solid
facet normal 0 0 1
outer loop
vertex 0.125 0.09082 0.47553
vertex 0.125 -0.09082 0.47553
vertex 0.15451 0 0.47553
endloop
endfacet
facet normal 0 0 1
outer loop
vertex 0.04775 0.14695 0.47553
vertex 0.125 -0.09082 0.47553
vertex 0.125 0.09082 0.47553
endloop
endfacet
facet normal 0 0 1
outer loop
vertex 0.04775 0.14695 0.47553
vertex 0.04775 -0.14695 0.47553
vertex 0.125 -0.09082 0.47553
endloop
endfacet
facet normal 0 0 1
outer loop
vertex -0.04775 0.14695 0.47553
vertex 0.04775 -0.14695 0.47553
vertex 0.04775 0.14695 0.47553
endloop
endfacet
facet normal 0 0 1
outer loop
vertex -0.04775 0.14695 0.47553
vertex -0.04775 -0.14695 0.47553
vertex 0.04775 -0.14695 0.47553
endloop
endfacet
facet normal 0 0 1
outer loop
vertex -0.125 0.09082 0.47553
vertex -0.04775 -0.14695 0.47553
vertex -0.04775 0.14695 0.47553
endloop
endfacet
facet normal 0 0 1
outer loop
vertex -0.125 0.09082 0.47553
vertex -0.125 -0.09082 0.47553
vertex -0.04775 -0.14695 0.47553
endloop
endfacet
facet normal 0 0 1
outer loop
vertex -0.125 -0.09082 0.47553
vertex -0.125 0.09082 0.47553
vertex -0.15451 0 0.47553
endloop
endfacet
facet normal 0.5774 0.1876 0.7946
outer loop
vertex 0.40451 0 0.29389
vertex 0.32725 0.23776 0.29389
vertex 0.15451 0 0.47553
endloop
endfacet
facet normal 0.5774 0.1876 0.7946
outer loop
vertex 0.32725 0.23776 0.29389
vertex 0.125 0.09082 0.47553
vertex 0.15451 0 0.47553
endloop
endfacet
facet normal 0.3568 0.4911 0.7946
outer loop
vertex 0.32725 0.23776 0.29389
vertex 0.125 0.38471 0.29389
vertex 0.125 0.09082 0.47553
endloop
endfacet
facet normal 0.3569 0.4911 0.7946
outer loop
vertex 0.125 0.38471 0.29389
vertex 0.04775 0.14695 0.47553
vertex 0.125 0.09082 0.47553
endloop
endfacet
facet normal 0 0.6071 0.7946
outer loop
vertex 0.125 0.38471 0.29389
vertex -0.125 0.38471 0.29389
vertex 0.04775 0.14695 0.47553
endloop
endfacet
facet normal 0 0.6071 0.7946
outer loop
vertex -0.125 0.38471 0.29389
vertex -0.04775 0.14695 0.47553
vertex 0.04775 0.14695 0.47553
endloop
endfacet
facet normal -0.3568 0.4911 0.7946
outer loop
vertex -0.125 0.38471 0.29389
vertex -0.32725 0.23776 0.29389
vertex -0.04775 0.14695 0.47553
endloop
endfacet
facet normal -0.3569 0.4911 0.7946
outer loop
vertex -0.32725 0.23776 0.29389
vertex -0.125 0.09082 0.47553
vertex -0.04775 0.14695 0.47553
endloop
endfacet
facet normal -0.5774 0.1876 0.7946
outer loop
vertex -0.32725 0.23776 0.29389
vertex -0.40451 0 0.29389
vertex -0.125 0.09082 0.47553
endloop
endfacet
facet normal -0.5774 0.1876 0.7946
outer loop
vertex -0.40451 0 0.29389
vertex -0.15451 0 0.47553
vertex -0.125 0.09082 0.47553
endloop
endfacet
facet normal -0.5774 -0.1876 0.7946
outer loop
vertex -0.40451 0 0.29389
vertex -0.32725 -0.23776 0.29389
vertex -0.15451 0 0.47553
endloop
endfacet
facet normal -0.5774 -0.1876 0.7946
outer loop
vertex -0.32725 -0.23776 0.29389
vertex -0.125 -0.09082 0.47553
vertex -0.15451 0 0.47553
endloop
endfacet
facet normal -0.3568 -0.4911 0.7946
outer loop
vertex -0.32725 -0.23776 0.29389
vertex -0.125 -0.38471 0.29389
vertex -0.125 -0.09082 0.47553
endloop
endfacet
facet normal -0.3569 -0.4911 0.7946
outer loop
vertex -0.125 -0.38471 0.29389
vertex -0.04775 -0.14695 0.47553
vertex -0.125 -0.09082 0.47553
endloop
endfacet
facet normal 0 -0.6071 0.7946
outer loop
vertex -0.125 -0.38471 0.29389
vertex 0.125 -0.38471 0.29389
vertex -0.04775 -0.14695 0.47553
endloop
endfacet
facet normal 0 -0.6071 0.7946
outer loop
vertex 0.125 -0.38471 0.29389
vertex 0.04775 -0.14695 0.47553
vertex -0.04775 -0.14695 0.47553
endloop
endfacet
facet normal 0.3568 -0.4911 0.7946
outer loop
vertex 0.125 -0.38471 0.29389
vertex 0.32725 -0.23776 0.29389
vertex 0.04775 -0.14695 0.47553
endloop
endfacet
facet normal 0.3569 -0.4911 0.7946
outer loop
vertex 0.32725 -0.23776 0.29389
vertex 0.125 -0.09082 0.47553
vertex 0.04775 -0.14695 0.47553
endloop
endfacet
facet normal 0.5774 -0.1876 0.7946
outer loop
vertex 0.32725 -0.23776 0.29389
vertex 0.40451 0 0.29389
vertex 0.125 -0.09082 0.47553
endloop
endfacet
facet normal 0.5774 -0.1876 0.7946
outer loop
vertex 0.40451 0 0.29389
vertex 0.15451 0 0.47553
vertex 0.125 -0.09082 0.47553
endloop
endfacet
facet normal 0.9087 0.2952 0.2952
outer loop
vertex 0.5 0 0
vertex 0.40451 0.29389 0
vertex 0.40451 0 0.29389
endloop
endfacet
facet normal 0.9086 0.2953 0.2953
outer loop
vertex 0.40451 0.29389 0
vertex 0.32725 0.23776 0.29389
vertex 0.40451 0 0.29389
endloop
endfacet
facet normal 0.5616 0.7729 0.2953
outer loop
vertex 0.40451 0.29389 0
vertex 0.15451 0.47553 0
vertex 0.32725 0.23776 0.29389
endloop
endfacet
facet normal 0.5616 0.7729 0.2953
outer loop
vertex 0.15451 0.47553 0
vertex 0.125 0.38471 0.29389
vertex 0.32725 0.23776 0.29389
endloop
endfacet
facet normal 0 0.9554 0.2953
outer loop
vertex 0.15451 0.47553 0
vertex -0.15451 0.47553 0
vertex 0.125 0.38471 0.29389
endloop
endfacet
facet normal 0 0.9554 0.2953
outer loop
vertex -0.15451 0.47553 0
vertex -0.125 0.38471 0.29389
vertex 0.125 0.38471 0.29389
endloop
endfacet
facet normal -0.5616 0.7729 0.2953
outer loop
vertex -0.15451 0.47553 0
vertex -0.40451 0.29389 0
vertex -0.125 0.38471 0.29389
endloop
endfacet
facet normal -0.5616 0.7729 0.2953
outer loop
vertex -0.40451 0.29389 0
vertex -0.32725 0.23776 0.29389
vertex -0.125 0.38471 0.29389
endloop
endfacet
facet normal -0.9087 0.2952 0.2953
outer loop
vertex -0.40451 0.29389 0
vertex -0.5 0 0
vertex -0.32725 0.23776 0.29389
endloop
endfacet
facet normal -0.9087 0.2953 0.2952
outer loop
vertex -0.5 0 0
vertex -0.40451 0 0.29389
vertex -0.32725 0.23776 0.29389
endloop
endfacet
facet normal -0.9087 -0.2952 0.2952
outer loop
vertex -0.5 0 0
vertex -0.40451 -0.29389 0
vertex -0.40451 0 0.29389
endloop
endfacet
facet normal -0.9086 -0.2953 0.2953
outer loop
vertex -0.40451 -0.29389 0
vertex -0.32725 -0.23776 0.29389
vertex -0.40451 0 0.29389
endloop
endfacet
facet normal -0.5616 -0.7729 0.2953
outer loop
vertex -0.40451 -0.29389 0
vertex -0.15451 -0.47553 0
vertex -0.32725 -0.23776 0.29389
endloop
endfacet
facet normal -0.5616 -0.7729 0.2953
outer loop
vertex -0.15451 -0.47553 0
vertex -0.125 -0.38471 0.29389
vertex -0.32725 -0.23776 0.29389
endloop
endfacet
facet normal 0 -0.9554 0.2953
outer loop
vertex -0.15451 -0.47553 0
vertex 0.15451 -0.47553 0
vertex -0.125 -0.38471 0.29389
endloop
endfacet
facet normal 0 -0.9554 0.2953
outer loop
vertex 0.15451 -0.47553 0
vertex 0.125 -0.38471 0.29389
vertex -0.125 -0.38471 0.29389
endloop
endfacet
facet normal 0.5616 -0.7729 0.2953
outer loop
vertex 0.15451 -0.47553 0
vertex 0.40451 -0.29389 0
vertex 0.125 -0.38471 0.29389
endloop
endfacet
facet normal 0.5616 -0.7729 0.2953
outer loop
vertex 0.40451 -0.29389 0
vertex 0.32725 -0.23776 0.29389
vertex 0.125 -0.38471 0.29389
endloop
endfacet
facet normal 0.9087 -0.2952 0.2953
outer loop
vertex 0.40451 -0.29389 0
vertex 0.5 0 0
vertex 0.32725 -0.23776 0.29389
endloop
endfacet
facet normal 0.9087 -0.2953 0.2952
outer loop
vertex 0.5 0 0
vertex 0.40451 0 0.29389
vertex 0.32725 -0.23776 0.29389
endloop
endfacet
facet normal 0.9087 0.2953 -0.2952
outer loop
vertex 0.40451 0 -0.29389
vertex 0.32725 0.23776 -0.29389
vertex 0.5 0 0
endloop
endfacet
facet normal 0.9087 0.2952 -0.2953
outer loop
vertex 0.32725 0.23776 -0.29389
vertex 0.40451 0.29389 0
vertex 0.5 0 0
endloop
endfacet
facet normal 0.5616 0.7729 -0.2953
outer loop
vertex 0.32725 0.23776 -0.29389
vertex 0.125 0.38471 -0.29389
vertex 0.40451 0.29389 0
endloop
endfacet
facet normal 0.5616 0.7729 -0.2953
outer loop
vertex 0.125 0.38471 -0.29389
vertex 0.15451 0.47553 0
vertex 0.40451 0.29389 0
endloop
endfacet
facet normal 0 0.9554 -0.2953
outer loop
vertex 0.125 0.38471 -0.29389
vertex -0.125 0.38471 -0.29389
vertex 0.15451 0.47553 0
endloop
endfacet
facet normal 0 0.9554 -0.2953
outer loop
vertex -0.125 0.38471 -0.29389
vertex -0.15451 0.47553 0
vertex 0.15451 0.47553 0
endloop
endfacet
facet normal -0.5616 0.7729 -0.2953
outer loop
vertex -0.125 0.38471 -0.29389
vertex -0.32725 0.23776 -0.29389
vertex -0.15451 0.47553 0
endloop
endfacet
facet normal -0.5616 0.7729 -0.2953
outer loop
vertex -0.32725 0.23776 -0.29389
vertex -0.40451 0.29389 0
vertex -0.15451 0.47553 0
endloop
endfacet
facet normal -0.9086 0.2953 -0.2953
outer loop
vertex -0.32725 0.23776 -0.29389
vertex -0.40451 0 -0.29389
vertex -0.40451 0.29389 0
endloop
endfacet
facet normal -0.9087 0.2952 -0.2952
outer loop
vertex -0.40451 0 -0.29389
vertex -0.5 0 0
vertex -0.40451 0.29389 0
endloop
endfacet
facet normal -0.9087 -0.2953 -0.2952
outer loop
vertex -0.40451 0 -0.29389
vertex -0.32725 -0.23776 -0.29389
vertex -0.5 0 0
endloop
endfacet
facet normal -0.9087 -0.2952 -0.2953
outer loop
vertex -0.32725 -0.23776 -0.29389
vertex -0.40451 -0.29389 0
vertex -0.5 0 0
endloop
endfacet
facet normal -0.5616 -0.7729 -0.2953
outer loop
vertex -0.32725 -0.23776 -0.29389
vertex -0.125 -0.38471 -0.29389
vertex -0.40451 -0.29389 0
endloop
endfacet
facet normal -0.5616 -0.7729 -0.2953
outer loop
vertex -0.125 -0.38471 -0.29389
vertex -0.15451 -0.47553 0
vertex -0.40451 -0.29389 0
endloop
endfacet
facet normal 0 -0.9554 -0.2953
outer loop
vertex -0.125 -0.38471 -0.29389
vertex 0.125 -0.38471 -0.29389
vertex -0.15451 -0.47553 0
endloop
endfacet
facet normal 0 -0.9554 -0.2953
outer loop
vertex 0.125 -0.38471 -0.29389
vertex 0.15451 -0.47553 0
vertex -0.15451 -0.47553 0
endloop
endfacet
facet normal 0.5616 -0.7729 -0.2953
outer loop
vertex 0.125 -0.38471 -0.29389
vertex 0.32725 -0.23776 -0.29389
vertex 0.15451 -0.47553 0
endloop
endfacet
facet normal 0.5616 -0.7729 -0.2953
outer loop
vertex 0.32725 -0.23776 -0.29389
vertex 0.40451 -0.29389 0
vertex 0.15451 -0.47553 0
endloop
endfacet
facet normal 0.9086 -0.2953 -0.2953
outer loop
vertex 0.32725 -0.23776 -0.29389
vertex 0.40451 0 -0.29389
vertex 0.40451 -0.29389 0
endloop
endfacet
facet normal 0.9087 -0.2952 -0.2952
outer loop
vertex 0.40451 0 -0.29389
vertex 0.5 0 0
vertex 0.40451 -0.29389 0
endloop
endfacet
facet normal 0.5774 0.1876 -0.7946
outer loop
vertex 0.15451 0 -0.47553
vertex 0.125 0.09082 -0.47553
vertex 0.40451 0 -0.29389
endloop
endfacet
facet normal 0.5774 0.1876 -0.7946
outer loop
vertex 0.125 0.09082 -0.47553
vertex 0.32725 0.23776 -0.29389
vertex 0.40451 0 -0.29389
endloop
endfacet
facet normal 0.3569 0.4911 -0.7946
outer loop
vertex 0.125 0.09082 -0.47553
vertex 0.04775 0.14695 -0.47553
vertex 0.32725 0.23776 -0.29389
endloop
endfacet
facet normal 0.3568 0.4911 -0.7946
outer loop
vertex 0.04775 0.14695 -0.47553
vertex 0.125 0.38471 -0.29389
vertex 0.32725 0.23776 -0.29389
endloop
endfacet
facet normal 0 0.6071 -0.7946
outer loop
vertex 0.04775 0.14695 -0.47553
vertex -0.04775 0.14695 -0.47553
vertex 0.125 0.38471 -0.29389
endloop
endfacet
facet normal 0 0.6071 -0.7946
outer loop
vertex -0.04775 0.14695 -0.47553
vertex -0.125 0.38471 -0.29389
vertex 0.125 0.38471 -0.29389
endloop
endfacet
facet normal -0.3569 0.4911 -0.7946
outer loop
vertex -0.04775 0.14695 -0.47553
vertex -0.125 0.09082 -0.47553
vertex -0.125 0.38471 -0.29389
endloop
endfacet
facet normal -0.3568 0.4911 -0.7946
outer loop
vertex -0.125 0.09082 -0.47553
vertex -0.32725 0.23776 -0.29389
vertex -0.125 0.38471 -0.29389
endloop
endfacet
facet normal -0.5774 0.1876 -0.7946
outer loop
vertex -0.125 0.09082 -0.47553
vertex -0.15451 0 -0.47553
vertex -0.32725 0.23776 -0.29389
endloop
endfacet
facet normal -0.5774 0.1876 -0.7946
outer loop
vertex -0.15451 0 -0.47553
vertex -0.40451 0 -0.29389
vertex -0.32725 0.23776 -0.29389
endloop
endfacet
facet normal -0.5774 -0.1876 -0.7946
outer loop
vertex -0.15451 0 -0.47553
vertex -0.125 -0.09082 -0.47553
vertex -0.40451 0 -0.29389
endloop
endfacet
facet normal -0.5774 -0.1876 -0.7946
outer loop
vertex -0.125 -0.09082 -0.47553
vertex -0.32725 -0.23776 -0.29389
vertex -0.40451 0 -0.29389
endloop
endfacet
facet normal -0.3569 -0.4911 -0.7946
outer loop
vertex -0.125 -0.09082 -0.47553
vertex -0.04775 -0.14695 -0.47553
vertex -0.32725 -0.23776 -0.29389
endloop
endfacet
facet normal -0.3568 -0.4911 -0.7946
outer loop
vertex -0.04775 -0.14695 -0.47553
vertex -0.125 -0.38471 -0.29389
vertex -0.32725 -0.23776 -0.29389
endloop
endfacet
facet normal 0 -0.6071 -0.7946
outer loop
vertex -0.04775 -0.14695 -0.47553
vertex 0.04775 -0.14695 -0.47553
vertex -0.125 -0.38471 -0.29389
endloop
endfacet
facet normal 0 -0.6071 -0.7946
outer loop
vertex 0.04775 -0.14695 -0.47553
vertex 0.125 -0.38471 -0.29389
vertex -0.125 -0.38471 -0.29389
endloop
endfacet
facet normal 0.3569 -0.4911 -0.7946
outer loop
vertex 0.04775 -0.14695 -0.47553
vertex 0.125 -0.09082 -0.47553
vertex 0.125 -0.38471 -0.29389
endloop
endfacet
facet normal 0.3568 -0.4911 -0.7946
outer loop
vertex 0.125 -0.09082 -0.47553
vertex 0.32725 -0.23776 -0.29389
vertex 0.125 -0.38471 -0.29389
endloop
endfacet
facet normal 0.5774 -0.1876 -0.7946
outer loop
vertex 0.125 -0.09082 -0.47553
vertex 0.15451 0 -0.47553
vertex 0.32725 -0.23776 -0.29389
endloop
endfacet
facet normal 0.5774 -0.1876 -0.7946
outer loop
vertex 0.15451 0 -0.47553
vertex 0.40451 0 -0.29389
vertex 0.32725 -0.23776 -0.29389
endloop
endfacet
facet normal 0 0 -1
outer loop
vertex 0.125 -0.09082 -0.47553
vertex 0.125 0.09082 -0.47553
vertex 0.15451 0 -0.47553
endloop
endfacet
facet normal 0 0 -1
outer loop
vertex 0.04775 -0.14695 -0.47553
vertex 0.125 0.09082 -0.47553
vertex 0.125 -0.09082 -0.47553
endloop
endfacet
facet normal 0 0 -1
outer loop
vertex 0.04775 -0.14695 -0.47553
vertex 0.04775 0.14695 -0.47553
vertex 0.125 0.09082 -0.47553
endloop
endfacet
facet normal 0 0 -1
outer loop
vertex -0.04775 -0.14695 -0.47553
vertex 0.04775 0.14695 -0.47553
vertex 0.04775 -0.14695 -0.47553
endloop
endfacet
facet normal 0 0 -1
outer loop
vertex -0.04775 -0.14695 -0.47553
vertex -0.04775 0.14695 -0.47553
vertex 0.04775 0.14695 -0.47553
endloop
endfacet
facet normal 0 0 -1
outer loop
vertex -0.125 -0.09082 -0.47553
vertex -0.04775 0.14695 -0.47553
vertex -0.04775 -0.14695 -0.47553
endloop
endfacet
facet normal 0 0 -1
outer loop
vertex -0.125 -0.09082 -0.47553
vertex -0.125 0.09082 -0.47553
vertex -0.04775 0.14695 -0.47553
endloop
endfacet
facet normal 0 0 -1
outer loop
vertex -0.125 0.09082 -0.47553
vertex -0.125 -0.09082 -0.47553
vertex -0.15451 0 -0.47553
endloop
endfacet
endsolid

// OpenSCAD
// Cockpit/cargo for lunar lander module
sphere(r=0.50, $fn =10);
